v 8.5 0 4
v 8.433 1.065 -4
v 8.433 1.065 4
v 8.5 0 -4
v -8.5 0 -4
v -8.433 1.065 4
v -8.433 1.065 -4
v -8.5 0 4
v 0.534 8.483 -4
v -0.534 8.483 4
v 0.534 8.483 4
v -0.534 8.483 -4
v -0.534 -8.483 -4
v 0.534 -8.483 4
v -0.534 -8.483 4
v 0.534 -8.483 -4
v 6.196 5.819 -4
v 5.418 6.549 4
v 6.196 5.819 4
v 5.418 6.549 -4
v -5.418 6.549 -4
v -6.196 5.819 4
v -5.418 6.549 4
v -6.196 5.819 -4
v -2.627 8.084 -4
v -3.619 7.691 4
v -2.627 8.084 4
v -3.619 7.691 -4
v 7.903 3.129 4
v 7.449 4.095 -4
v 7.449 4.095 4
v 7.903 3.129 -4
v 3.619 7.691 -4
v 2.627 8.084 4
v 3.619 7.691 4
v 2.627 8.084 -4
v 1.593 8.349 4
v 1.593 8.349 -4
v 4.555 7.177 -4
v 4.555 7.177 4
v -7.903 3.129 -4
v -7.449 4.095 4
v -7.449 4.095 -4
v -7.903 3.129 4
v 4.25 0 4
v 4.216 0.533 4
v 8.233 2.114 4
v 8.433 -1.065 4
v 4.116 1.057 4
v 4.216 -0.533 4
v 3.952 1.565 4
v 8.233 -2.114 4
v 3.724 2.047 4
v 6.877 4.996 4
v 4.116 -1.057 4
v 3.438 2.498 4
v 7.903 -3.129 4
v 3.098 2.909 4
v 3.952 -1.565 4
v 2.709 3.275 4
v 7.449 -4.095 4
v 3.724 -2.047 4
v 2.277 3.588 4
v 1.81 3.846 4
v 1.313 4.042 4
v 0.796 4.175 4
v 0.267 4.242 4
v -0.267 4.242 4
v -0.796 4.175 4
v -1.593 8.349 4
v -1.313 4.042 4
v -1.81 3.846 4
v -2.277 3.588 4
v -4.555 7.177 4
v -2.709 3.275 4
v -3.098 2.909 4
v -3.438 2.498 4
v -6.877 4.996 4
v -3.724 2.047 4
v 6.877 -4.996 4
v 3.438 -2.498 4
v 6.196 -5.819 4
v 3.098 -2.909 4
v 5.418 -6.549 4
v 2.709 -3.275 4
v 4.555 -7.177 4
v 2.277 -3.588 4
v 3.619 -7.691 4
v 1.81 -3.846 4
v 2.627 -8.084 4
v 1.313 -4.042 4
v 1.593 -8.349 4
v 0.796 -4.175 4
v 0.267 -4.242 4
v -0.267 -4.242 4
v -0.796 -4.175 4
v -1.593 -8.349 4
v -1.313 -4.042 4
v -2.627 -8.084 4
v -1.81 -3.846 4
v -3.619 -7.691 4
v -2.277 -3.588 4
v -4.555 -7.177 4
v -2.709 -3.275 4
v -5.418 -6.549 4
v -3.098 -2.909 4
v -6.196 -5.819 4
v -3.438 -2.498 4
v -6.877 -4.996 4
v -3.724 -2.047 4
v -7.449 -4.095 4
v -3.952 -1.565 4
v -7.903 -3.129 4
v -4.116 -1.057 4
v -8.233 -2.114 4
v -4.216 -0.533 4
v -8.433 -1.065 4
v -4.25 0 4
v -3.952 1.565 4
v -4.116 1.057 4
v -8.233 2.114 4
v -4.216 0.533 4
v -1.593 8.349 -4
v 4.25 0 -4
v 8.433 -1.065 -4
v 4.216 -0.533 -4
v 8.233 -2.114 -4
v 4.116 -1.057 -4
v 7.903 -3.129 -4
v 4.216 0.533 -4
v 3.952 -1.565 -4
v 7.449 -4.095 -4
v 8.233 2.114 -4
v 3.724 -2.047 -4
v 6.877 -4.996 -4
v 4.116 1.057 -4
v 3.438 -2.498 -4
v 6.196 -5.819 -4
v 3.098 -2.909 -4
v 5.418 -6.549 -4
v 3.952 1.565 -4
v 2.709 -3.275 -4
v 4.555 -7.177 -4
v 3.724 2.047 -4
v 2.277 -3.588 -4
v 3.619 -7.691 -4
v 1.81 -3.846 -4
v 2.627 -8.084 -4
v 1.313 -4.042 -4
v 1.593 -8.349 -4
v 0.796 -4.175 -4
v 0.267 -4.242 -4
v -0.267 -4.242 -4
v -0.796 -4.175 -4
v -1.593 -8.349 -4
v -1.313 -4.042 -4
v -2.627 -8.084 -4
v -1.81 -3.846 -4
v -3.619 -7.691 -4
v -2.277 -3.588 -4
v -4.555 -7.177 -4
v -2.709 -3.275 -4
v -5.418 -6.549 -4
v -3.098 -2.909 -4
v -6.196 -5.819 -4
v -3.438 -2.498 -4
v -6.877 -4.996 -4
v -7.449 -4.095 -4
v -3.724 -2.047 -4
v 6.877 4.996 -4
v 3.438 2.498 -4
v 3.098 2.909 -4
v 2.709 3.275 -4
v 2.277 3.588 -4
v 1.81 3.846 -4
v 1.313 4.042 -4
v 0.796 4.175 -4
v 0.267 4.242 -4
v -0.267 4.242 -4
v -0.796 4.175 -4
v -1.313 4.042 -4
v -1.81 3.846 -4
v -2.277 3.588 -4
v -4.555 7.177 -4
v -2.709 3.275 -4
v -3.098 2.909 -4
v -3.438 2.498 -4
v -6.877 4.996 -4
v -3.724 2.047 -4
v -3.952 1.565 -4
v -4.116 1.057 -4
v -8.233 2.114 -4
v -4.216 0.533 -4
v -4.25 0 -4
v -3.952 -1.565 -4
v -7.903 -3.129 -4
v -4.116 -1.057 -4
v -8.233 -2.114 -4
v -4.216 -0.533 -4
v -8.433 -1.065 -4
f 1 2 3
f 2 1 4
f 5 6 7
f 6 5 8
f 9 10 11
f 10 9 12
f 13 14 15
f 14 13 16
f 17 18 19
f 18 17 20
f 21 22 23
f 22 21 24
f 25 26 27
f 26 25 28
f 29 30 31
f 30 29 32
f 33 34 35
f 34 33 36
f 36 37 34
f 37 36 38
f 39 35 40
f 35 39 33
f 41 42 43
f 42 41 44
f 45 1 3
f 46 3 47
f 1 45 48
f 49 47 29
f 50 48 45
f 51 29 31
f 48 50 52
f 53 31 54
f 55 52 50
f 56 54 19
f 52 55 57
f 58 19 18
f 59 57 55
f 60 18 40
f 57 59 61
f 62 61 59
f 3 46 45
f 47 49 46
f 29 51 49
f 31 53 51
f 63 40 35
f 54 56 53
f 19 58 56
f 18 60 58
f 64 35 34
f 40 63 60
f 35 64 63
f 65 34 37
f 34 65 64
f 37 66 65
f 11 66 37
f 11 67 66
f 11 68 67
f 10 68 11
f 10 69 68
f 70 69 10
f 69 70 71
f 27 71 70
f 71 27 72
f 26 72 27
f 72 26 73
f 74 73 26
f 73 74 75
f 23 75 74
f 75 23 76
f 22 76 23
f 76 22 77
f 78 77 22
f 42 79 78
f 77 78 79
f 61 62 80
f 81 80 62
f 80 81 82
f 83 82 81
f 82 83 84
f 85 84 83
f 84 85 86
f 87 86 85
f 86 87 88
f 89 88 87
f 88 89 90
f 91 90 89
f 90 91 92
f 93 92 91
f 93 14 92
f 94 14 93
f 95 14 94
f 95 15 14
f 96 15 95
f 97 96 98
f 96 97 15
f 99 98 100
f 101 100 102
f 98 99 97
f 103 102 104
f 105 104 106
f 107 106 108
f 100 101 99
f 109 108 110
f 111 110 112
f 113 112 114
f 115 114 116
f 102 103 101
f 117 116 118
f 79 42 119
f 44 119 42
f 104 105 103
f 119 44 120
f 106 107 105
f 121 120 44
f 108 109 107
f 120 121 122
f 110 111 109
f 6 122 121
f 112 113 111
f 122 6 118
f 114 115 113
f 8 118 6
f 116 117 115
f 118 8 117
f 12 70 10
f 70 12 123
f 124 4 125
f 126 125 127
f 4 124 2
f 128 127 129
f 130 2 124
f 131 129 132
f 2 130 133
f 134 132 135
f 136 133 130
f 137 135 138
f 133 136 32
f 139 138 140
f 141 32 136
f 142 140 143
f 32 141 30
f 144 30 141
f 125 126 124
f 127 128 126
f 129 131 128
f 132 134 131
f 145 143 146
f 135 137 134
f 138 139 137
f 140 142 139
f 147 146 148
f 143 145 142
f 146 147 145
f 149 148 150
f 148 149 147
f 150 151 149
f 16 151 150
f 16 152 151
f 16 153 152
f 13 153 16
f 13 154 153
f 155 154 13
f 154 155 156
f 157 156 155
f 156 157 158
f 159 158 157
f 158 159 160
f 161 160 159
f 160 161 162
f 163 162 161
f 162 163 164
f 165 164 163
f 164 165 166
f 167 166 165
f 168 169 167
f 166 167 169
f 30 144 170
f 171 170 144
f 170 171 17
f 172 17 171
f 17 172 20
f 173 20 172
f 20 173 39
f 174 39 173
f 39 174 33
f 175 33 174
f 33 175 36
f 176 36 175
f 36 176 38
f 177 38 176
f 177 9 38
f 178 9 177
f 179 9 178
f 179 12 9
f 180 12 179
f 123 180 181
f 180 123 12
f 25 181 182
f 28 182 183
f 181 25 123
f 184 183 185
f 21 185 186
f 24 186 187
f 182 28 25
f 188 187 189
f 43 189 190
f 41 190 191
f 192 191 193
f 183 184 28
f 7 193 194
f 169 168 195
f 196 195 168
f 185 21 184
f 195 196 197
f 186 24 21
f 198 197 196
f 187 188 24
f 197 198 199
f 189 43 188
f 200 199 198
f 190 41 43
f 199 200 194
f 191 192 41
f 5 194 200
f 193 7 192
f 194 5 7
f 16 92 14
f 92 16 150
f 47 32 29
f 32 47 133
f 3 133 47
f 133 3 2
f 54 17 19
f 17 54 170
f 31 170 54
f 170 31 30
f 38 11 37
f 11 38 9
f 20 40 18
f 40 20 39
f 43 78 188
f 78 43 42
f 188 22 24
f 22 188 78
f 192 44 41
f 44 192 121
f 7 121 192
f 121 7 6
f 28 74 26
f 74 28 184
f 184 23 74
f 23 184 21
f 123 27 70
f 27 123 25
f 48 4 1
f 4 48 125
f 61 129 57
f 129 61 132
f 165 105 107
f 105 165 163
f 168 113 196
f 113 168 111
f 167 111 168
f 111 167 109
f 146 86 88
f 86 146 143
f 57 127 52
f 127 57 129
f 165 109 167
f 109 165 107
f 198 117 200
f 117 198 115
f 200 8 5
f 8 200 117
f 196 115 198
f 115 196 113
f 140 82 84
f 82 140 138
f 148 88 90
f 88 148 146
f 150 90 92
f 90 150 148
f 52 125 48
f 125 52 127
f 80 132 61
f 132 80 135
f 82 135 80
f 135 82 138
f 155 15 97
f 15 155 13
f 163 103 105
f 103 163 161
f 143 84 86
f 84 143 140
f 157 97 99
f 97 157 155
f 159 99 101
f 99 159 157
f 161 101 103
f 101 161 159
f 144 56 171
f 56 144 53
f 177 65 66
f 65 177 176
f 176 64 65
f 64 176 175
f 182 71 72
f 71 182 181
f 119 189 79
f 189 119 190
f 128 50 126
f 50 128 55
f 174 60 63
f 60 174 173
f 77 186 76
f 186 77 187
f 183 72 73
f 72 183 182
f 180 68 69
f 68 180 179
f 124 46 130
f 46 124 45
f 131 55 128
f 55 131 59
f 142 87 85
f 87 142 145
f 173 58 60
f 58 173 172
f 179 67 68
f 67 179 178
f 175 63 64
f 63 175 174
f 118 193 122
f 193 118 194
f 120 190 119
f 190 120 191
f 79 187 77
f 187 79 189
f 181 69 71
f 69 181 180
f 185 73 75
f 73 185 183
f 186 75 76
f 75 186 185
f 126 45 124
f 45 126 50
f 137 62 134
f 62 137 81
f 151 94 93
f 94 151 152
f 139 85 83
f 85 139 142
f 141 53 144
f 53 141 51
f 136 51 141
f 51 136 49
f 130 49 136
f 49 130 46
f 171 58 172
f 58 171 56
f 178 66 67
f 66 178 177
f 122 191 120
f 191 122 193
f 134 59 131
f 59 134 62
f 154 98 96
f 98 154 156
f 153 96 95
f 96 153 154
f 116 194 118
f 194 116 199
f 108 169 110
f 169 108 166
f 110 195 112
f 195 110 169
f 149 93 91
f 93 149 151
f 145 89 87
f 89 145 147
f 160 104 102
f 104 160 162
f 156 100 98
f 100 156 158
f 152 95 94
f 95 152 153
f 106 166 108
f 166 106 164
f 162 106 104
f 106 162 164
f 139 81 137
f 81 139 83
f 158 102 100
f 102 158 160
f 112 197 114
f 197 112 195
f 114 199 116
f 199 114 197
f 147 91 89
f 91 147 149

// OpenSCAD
$fn = 50;


difference() {
	union() {
		translate(v = [0, 0, -4.0000000000]) {
			cylinder(h = 8, r = 8.5000000000);
		}
	}
	union() {
		translate(v = [0, 0, -100.0000000000]) {
			cylinder(h = 200, r = 4.2500000000);
		}
	}
}
